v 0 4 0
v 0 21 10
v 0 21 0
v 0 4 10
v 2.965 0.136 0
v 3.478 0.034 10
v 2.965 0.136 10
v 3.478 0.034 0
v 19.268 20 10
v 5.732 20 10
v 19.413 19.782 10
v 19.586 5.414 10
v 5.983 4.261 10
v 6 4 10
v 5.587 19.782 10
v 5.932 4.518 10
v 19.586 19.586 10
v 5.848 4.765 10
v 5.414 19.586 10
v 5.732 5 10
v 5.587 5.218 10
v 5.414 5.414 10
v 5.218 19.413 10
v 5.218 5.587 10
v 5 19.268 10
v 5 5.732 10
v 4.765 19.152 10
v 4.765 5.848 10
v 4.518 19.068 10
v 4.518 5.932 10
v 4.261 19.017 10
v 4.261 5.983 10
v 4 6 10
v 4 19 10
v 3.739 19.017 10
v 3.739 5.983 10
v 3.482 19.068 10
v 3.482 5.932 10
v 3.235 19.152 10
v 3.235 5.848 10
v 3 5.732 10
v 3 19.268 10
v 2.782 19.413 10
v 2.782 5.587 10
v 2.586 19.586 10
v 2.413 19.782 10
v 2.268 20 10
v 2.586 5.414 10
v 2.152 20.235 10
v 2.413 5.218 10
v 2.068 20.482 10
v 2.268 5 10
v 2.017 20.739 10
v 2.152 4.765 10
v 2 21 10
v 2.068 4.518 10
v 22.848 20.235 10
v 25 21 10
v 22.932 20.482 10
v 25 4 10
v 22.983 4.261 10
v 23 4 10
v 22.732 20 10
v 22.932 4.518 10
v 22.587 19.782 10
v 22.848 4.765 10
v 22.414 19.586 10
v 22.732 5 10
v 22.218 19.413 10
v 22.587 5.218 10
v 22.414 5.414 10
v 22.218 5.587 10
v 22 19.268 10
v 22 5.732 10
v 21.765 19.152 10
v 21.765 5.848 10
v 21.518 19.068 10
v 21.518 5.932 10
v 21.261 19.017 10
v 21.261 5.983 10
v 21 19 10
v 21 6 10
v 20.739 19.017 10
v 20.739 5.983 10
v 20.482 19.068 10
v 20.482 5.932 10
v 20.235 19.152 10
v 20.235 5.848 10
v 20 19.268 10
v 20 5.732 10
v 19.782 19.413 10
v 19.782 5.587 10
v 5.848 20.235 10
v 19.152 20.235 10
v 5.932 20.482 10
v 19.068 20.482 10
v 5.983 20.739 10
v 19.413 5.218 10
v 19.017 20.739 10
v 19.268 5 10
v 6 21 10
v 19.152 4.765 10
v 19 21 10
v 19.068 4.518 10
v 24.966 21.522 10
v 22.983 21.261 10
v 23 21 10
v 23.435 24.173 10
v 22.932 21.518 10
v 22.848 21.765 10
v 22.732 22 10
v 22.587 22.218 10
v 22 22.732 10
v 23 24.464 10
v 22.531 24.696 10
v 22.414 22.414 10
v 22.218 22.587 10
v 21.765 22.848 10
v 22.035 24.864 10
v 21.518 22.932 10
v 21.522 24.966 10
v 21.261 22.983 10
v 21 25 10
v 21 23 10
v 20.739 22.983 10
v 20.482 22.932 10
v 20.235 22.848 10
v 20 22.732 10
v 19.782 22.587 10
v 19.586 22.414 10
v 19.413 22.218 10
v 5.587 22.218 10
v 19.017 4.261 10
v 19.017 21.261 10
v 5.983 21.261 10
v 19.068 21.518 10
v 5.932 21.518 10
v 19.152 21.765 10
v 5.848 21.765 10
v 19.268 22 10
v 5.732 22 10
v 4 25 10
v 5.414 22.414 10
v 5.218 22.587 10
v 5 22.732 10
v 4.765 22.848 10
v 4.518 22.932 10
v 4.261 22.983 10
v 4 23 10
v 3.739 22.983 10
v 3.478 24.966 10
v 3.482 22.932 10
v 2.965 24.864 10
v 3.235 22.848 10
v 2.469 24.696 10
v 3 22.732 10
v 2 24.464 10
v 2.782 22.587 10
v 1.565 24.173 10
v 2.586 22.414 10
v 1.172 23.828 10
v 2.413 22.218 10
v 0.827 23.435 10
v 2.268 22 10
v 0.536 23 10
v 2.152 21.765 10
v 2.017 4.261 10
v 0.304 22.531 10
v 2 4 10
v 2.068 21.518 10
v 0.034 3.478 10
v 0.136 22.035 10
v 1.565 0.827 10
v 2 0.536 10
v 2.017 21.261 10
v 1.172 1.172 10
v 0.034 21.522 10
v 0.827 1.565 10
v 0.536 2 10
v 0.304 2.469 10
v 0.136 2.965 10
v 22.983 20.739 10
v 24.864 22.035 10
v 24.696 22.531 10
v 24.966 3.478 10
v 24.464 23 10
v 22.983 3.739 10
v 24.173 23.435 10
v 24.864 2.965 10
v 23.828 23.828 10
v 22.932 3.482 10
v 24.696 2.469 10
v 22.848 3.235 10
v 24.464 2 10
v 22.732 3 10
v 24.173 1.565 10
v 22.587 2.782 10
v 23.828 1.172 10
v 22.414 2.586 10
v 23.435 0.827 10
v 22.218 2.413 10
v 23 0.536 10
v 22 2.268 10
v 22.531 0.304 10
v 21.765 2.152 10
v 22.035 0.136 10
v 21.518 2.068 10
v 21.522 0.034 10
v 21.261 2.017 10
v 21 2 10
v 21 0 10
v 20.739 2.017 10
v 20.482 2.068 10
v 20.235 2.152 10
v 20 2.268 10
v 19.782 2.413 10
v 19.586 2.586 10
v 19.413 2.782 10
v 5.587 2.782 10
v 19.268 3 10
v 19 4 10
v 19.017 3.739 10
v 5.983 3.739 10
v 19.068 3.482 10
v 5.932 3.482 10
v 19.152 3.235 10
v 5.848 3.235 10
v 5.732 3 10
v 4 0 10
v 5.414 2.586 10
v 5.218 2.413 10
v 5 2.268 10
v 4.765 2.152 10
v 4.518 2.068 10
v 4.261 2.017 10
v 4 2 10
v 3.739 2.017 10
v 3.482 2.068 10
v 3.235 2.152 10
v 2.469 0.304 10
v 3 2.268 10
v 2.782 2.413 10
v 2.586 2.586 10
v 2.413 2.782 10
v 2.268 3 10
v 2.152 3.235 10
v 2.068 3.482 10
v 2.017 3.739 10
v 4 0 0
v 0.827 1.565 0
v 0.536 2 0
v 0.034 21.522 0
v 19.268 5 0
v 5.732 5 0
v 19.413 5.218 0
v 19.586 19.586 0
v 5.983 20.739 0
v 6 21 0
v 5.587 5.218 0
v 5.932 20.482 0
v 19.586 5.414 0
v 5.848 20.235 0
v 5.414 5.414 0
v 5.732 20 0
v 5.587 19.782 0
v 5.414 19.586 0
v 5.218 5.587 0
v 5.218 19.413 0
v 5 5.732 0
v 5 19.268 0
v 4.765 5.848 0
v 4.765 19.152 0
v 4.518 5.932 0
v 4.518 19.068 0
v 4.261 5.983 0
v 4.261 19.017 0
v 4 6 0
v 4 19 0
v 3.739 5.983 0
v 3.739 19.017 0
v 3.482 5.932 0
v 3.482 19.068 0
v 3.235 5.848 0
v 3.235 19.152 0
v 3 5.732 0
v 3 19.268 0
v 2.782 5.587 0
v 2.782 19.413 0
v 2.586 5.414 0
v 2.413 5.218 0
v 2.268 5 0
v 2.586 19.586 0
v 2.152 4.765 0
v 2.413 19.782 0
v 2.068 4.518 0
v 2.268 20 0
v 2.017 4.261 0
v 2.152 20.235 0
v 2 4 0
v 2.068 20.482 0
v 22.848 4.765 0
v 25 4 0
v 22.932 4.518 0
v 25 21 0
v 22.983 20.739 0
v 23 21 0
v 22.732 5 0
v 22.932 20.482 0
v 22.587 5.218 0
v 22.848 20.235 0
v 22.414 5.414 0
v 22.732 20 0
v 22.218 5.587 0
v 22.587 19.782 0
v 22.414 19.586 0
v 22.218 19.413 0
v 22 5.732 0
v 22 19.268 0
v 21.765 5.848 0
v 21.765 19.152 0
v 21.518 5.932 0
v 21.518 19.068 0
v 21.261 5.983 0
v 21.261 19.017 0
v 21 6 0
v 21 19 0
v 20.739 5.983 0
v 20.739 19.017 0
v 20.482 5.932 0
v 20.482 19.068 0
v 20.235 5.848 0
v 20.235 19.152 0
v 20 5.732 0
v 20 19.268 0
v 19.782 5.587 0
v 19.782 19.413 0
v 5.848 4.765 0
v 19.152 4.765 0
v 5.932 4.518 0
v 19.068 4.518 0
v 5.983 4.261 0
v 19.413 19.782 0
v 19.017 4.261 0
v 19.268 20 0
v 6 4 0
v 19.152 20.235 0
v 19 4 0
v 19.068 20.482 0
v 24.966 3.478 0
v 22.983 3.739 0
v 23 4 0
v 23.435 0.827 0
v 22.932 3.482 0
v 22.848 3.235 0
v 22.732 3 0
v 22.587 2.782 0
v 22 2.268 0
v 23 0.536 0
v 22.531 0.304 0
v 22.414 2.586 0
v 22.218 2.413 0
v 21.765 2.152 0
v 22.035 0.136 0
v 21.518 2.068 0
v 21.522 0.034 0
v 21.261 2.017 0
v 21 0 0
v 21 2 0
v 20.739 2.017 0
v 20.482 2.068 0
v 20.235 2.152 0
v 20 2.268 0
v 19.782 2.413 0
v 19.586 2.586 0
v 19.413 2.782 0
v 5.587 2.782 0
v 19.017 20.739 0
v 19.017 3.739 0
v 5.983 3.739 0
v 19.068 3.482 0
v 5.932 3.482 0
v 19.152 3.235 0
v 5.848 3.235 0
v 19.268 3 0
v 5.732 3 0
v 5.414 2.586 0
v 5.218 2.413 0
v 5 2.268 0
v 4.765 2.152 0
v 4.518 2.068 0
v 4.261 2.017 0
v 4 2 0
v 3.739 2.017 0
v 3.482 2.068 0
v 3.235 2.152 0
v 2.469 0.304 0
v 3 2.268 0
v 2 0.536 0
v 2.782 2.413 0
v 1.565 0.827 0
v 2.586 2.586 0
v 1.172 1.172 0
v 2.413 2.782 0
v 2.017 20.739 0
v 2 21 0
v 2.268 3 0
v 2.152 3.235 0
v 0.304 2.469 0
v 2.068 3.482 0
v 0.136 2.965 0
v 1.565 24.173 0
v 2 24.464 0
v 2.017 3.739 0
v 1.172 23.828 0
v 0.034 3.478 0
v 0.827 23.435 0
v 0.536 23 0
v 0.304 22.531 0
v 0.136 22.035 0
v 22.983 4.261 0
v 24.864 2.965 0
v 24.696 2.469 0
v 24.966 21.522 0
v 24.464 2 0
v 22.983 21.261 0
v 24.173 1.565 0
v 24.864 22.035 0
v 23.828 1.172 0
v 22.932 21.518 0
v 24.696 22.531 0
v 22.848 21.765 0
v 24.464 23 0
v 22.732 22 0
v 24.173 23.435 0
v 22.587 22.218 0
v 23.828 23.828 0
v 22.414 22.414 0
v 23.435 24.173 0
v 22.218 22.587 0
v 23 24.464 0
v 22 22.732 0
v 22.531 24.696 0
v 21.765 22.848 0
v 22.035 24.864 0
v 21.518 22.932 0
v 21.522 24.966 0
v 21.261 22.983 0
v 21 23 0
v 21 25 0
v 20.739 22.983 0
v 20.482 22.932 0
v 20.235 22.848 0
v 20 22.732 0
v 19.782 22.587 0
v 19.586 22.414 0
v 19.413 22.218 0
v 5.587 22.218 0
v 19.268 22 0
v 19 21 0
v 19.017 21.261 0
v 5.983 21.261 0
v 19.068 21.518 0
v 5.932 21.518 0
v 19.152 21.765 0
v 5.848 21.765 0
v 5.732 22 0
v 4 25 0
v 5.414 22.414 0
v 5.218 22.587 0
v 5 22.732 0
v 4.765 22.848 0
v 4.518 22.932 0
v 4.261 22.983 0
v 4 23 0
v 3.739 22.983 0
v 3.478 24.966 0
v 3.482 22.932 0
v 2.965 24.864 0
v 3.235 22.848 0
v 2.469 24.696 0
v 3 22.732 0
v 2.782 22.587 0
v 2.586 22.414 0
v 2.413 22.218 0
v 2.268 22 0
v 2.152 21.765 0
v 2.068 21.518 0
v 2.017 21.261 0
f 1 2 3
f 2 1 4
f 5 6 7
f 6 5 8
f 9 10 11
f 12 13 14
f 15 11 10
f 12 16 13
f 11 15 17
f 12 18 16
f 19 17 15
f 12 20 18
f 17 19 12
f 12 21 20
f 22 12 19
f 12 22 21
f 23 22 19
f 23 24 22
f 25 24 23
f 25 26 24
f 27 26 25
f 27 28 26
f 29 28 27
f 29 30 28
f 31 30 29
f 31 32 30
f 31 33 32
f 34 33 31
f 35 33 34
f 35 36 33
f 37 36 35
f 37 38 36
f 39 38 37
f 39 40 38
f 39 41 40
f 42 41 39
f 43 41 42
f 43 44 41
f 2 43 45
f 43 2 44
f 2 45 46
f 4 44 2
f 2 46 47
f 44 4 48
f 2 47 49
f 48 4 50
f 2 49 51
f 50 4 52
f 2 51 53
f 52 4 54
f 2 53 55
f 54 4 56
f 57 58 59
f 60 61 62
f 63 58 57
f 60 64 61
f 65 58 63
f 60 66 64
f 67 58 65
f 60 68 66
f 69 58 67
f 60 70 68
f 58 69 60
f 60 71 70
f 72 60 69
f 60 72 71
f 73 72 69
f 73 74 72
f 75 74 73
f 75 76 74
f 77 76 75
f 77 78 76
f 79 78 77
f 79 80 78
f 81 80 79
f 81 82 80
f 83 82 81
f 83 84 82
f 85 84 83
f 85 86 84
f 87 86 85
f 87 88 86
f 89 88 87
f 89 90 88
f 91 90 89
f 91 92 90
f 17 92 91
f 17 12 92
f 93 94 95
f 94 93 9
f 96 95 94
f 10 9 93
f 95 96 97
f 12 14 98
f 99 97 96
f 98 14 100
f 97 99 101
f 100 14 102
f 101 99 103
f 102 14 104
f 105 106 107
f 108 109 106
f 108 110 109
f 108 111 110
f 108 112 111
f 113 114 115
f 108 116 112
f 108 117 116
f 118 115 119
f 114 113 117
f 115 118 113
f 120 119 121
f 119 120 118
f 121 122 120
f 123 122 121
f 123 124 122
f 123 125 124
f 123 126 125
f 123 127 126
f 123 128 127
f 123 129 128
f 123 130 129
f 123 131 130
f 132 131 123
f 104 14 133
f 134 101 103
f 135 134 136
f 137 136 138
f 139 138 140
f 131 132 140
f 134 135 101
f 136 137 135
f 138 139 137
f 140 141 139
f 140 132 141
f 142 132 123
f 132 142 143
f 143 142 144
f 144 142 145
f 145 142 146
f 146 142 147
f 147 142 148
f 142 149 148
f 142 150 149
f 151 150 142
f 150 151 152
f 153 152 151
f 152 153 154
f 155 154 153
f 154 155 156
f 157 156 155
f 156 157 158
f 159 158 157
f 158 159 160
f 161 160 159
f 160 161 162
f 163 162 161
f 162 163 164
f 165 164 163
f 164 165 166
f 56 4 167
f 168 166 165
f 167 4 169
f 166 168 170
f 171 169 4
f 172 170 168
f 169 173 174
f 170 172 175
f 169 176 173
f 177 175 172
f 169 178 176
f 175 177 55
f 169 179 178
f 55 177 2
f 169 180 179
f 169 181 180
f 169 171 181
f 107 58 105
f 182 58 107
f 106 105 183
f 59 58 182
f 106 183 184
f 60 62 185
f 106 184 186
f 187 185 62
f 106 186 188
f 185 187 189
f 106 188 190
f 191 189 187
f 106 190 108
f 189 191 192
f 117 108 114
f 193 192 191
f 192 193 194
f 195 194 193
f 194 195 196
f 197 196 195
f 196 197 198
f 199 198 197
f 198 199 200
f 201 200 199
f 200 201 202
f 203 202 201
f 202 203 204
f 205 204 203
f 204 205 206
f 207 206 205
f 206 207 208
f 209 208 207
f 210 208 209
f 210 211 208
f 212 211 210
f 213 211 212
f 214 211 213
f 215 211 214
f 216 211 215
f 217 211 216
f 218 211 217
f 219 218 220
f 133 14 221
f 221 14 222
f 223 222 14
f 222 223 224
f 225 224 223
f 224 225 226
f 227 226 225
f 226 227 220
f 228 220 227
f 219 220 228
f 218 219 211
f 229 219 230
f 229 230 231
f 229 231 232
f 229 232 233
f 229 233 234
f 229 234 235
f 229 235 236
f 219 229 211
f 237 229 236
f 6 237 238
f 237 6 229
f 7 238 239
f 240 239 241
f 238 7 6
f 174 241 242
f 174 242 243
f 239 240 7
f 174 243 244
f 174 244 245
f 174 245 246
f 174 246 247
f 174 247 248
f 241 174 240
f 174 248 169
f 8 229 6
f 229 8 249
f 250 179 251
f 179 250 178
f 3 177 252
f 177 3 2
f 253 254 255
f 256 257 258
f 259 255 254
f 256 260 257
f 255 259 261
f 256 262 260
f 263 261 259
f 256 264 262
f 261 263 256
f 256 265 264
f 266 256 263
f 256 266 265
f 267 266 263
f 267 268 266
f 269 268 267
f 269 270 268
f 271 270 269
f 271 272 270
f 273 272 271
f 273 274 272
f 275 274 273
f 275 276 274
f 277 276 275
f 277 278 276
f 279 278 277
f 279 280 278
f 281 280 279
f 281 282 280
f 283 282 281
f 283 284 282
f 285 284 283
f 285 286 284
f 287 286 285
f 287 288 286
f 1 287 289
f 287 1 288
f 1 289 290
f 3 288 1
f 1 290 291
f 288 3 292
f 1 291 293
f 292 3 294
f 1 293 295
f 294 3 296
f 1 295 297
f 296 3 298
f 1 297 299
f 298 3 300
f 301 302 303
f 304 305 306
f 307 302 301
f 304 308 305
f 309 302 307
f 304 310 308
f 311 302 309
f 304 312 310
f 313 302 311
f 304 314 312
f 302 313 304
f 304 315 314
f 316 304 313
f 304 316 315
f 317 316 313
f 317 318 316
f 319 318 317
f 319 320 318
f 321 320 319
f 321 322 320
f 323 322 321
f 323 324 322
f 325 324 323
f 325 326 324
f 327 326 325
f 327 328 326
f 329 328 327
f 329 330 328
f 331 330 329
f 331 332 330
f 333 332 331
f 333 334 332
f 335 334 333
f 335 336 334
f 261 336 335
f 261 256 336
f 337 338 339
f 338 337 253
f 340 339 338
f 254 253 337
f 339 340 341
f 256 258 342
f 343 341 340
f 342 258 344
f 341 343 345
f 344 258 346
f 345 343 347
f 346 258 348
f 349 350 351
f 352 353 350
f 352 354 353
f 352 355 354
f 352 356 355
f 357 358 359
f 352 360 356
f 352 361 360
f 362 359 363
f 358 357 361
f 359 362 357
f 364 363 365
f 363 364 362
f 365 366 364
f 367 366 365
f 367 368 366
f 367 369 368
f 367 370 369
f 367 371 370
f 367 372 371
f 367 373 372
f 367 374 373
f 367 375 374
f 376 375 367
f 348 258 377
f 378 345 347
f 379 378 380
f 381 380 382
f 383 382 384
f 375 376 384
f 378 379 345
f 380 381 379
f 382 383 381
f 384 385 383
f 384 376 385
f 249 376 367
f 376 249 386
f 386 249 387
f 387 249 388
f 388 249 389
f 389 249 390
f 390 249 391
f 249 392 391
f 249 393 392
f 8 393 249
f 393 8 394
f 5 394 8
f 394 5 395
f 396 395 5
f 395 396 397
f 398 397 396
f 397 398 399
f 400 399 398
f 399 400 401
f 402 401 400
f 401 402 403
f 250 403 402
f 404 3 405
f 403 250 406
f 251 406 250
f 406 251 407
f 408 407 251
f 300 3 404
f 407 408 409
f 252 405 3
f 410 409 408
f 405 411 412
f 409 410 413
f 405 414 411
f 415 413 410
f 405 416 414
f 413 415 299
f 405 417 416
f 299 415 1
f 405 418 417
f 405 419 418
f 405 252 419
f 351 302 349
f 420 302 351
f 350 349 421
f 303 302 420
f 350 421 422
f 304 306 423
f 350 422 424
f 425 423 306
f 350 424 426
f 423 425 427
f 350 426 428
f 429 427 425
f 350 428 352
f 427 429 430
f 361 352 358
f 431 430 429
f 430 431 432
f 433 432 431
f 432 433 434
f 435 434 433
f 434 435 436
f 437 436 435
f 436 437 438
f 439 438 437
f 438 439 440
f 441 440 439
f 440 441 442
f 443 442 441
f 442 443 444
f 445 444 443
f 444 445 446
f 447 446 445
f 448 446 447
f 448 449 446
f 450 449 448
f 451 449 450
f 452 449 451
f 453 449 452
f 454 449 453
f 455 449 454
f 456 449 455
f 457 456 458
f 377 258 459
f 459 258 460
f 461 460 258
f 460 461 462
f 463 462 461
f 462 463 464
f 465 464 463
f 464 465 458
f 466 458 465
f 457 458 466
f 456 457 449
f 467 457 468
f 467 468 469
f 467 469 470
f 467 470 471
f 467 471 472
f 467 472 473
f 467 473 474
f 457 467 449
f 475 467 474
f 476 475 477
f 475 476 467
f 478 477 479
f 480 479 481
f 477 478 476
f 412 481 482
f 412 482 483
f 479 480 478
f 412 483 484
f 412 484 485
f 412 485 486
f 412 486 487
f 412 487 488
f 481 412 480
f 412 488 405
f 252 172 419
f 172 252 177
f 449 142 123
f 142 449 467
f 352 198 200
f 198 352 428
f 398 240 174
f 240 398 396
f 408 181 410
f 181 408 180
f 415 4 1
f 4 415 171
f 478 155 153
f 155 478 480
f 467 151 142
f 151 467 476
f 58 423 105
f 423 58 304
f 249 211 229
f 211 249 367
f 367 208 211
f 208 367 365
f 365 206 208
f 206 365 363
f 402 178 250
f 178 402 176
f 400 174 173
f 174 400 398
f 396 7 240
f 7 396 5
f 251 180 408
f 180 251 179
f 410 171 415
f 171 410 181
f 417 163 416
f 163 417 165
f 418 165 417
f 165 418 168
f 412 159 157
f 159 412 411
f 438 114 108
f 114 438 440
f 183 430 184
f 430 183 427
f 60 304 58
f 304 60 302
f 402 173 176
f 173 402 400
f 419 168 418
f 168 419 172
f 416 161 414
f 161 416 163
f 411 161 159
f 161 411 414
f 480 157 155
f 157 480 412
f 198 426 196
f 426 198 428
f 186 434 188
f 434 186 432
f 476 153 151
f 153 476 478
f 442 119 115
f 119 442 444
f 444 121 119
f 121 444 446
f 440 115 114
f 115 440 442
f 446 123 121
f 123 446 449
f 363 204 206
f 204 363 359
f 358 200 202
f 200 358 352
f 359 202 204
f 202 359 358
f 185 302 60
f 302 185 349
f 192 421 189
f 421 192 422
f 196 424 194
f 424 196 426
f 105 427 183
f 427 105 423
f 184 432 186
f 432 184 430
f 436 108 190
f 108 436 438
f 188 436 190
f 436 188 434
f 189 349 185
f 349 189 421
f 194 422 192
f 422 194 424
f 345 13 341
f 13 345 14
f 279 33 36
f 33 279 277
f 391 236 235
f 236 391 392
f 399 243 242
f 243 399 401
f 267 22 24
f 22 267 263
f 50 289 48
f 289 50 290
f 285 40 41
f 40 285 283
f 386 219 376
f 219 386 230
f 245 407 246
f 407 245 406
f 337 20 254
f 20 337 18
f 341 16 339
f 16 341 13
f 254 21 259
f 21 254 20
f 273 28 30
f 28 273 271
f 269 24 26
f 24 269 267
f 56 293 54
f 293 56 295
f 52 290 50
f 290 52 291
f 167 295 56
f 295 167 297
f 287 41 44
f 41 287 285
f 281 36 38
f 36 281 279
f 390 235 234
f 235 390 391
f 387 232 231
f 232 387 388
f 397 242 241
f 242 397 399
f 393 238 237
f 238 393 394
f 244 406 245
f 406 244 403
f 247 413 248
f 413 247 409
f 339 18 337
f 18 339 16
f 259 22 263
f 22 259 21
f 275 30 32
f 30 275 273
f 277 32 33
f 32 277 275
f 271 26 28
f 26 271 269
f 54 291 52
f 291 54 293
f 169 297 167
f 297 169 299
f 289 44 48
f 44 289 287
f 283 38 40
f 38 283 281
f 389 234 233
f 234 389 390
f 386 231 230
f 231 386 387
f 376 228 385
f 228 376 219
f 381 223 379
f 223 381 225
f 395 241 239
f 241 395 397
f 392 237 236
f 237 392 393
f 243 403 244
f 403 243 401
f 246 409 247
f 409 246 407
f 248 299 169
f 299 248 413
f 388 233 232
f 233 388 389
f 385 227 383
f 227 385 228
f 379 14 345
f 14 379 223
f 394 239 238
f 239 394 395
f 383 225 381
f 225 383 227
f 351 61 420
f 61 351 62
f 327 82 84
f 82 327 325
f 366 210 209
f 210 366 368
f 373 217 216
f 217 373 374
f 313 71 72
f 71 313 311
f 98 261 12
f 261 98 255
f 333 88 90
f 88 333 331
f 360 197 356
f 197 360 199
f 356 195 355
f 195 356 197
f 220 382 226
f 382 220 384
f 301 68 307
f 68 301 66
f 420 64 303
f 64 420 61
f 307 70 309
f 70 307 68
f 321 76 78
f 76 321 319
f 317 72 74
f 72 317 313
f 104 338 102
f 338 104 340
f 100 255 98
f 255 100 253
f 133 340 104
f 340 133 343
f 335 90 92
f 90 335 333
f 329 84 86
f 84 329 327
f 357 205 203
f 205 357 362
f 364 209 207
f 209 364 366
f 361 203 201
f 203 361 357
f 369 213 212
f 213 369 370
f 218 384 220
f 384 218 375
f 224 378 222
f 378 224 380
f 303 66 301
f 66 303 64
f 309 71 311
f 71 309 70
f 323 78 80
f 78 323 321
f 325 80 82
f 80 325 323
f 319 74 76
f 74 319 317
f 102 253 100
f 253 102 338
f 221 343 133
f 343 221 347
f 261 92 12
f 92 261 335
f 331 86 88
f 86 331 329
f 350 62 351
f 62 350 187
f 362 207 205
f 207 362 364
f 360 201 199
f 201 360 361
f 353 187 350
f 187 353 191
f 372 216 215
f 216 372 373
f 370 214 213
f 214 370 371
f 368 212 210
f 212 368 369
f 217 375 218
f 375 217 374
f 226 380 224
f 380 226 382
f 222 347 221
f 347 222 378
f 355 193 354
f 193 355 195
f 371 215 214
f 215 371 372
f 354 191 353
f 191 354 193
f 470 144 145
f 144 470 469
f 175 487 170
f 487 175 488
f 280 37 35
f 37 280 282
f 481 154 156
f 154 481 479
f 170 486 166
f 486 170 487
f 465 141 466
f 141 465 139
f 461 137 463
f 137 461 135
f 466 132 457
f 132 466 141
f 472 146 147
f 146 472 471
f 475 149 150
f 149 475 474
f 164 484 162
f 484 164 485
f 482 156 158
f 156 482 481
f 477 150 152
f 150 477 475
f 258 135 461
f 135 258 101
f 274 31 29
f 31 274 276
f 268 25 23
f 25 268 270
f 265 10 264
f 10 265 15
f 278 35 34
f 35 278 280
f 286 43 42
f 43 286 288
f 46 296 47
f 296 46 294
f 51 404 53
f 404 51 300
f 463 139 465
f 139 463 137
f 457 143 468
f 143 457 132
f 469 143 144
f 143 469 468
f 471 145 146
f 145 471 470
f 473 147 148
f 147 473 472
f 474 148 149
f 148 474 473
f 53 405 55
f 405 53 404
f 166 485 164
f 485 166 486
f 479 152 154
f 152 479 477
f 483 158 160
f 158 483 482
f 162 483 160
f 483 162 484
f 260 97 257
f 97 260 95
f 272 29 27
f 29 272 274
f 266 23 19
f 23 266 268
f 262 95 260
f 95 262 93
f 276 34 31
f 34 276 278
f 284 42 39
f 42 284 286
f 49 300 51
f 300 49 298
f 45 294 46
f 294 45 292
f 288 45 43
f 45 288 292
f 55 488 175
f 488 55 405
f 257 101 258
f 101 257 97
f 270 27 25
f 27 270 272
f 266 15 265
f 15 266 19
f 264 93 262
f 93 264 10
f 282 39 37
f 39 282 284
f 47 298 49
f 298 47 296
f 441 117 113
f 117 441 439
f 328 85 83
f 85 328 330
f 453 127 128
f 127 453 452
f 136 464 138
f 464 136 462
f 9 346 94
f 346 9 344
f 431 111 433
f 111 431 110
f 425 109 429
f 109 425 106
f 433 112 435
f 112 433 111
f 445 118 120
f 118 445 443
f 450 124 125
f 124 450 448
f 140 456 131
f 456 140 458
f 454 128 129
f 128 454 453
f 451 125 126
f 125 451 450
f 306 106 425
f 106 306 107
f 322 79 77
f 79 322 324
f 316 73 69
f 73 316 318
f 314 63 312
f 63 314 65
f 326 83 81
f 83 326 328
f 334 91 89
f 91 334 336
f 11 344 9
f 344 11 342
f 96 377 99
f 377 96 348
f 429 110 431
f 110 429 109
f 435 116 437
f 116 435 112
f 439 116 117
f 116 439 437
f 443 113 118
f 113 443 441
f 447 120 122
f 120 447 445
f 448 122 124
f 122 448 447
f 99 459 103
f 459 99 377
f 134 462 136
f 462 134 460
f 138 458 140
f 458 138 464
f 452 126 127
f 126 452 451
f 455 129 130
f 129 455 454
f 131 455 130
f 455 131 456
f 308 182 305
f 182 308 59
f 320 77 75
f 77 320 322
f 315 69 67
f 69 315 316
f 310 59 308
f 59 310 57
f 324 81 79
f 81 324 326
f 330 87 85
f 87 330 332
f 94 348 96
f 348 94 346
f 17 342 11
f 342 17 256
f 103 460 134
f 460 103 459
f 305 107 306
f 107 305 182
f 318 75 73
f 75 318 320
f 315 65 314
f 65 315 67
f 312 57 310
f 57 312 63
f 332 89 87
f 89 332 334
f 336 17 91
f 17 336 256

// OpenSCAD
// file: ../../../conf/constants.scad
/**********************************************************************************************************************
 **
 ** conf/constants.scad
 **
 ** This file contains constants and aliases used for the part size definitions.
 **
 **********************************************************************************************************************/

/**
 * The alias names for the rails.
 * A is the "front left" rail, B the "front right" rail, C the back rail.
 * These constants are also used for the sides of the frame and the effector; in this case, side A is the one 
 * opposing rail A.
 */
A = 0;
B = 1;
C = 2;

/**
 * Aliases for metric screw/nut sizes.
 */
M2 = 2;
M3 = 3;
M4 = 4;
M5 = 5;
M8 = 8;

/** 
 * Aliases for NEMA stepper motors.
 */
NEMA14 = 14;
NEMA17 = 17;
NEMA23 = 23;
// main file
/**********************************************************************************************************************
 **
 ** parts/vitamins/electromechanic/fan_axial_pc.scad
 **
 ** This file renders an axial fan for part cooling.
 **
 **********************************************************************************************************************/

include <../../../conf/part_sizes.scad>

$fn = 48;
difference() {

	// the outer hull
	hull() {
		translate([pc_fan_corner_radius(), pc_fan_corner_radius(), 0])
			cylinder(r = pc_fan_corner_radius(), h = pc_fan_depth());
		translate([pc_fan_side_length() - pc_fan_corner_radius(), pc_fan_corner_radius(), 0])
			cylinder(r = pc_fan_corner_radius(), h = pc_fan_depth());
		translate([pc_fan_corner_radius(), pc_fan_side_length() - pc_fan_corner_radius(), 0])
			cylinder(r = pc_fan_corner_radius(), h = pc_fan_depth());
		translate([pc_fan_side_length() - pc_fan_corner_radius(), pc_fan_side_length() - pc_fan_corner_radius(), 0])
			cylinder(r = pc_fan_corner_radius(), h = pc_fan_depth());
	}

	// minus the screw holes
	translate([pc_fan_hole_offset(), pc_fan_hole_offset(), -1])
		cylinder(d = pc_fan_hole_diameter(), h = pc_fan_depth() + 2);
	translate([pc_fan_side_length() - pc_fan_hole_offset(), pc_fan_hole_offset(), -1])
		cylinder(d = pc_fan_hole_diameter(), h = pc_fan_depth() + 2);
	translate([pc_fan_hole_offset(), pc_fan_side_length() - pc_fan_hole_offset(), -1])
		cylinder(d = pc_fan_hole_diameter(), h = pc_fan_depth() + 2);
	translate([pc_fan_side_length() - pc_fan_hole_offset(), pc_fan_side_length() - pc_fan_hole_offset(), -1])
		cylinder(d = pc_fan_hole_diameter(), h = pc_fan_depth() + 2);
}
